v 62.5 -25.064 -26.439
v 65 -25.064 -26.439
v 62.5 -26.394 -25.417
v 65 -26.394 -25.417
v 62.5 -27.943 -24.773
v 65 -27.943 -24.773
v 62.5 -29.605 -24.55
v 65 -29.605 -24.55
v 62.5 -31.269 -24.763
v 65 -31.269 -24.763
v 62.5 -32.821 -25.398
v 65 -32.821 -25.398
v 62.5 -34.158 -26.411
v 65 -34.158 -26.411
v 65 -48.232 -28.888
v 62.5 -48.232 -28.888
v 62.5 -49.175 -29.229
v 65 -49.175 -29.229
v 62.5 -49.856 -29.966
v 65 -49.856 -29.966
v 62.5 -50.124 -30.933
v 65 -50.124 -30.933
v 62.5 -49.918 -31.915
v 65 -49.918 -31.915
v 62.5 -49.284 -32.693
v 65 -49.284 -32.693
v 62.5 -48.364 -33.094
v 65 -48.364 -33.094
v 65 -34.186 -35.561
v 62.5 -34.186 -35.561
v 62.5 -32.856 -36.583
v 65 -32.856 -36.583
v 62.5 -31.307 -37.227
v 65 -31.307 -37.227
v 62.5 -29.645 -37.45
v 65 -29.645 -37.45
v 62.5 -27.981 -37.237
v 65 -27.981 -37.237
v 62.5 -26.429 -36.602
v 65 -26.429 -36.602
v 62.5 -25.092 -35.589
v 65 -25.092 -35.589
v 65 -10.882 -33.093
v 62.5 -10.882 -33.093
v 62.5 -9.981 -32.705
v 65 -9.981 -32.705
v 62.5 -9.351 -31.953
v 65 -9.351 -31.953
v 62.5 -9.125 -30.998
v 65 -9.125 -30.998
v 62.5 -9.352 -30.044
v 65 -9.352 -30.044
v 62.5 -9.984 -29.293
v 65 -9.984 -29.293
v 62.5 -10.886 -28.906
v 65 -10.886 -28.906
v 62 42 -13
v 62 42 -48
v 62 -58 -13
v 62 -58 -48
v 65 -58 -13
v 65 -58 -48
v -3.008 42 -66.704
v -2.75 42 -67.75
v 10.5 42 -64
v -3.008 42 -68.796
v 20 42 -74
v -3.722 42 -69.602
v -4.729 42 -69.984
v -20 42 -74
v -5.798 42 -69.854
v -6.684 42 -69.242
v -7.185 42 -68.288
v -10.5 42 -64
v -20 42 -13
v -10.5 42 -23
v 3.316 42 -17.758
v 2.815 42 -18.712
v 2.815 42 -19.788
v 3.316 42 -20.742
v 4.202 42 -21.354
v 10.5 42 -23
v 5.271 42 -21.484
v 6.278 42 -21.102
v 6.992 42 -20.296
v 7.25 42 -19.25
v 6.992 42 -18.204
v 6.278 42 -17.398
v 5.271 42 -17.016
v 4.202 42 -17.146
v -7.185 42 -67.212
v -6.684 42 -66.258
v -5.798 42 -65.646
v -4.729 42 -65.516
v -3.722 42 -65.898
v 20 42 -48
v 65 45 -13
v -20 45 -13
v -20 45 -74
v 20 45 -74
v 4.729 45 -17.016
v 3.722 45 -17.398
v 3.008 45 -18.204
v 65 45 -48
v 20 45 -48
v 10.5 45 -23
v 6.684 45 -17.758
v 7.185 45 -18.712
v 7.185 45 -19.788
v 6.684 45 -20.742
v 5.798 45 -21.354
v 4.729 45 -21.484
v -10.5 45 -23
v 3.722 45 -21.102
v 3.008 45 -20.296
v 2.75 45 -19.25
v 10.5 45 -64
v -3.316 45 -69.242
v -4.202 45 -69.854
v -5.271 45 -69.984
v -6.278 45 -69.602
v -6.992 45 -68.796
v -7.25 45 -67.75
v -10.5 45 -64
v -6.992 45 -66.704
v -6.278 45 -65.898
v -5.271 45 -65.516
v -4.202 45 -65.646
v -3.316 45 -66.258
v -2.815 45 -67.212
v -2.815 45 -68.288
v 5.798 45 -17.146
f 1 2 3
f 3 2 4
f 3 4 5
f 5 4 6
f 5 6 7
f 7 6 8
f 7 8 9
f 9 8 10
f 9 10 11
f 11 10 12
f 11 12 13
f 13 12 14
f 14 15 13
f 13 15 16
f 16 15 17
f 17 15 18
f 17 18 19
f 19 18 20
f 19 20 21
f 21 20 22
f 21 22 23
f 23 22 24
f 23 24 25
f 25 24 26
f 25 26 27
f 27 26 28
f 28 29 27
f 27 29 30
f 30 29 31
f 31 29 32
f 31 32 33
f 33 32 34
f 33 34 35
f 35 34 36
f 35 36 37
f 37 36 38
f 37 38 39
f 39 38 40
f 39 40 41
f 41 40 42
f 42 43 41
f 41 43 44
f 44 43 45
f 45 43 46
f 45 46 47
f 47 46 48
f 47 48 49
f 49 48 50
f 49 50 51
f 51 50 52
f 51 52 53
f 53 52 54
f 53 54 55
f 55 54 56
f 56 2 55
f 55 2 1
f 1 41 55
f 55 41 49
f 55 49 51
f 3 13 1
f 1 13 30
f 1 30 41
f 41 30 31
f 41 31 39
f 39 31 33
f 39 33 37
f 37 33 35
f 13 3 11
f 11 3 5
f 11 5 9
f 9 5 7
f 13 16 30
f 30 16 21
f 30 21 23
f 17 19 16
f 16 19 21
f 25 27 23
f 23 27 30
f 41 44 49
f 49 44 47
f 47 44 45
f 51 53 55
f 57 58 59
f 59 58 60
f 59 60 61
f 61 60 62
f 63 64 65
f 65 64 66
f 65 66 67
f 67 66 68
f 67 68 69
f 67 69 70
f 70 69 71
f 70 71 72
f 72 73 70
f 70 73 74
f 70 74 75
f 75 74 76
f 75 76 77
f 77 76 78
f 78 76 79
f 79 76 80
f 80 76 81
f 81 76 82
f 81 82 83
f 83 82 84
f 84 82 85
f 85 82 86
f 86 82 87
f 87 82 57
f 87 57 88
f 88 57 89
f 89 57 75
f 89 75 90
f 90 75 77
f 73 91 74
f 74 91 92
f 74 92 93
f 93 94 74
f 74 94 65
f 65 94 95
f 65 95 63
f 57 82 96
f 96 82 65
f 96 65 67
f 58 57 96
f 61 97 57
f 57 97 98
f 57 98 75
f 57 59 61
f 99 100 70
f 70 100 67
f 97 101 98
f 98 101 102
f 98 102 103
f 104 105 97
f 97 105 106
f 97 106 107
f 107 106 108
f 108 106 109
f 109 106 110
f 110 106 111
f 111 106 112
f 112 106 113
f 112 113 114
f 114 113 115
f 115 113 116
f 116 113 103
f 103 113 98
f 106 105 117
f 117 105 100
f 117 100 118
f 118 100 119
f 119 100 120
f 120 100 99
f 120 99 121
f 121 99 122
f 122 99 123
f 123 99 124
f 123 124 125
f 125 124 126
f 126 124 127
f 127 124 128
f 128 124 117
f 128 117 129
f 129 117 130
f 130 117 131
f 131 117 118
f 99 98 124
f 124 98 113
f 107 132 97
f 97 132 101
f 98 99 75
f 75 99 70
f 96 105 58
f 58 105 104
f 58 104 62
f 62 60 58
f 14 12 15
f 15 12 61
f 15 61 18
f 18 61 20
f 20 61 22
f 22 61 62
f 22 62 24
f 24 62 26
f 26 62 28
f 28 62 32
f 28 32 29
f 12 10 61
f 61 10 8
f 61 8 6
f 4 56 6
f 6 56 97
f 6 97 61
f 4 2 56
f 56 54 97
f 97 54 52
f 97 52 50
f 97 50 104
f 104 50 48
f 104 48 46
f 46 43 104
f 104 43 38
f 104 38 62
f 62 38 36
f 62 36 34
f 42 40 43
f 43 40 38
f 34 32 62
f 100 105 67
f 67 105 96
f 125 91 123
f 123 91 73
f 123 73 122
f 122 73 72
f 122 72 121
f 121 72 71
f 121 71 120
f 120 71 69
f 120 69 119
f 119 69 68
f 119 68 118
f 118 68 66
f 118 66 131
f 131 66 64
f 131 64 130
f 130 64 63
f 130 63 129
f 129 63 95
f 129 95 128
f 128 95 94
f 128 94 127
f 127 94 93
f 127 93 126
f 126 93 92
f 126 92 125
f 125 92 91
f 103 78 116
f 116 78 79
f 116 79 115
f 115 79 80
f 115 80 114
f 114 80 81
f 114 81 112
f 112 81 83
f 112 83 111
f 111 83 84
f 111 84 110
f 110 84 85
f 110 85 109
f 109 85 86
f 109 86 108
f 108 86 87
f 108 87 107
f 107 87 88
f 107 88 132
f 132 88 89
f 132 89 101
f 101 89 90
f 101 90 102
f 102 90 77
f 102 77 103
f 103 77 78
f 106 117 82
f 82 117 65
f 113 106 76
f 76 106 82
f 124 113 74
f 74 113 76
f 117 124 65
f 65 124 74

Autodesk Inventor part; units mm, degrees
ref_plane "YZ Plane" through (0, 0, 0) normal (1, 0, 0) x (0, 1, 0)
ref_plane "XZ Plane" through (0, 0, 0) normal (0, 1, 0) x (-1, 0, 0)
ref_plane "XY Plane" through (0, 0, 0) normal (0, 0, 1) x (1, 0, 0)
sketch "Sketch1" plane through (0, 0, 0) normal (0, 0, 1) x (1, 0, 0)
  line L0 (-31, -31) -> (31, -31)
  line L1 (31, -31) -> (31, 31)
  line L2 (31, 31) -> (-31, 31)
  line L3 (-31, 31) -> (-31, -31)
  line L4 (-31, -31) -> (31, 31) construction
  line L5 (31, -31) -> (-31, 31) construction
  line L6 (-33, 33) -> (33, 33)
  line L7 (33, 33) -> (33, -33)
  line L8 (33, -33) -> (-33, -33)
  line L9 (-33, -33) -> (-33, 33)
  point P0 (0, 0)
  dimension "d0" = 62
  dimension "d1" = 62
  dimension "d2" = 2
extrude "Extrusion1" add sketch "Sketch1" along normal blind 2 contours L3 L2 L1 L0 | L6 L7 L8 L9
extrude "Extrusion2" add sketch "Sketch1" against normal blind 12
sketch "Sketch2" plane through (-33, 33, 2) normal (0, 1, 0) x (1, 0, 0)
  line L0 (13, 3) -> (53, 3)
  line L1 (53, 3) -> (53, 0)
  line L2 (53, 0) -> (13, 0)
  line L3 (13, 0) -> (13, 3)
  line L4 (0, 14) -> (0, 0) projected
  line L5 (0, 14) -> (66, 14) projected
  point P0 (33, 2)
  dimension "d7" = 40
  dimension "d8" = 3
  dimension "d9" = 13
  dimension "d10" = 11
extrude "Extrusion3" add sketch "Sketch2" along normal blind 12
sketch "Sketch3" plane through (20, 33, -1) normal (0, 0, -1) x (-1, 0, 0)
  line L0 (40, 12) -> (0, 12) projected
  line L1 (40, 0) -> (40, 12) projected
  line L2 (0, 12) -> (40, 12)
  line L3 (40, 12) -> (40, 9)
  line L4 (40, 9) -> (0, 9)
  line L5 (0, 9) -> (0, 12)
  point P0 (20, -33)
  dimension "d13" = 3
extrude "Extrusion4" add sketch "Sketch3" along normal blind 80
sketch "Sketch4" plane through (-20, 42, -1) normal (0, -1, 0) x (1, 0, 0)
  line L0 (30.5, -63) -> (9.5, -63)
  line L1 (9.5, -63) -> (9.5, -22)
  line L2 (9.5, -22) -> (30.5, -22)
  line L3 (30.5, -22) -> (30.5, -63)
  line L4 (40, 3) -> (40, -80) projected
  line L5 (0, 3) -> (40, 3) projected
  point P0 (20, 1)
  dimension "d16" = 21
  dimension "d17" = 41
  dimension "d18" = 9.5
  dimension "d19" = 25
extrude "Extrusion5" cut sketch "Sketch4" against normal blind 80
sketch "Sketch5" plane through (-20, 42, -1) normal (0, -1, 0) x (1, 0, 0)
  line L0 (30.5, -63) -> (9.5, -63) projected
  line L1 (30.5, -63) -> (9.5, -63)
  line L2 (9.5, -63) -> (9.5, -70)
  line L3 (9.5, -70) -> (30.5, -70)
  line L4 (30.5, -70) -> (30.5, -63)
  circle A0 centre (15, -66.75) radius 2.25
  line L5 (30.5, -22) -> (30.5, -63) projected
  line L6 (30.5, -22) -> (9.5, -22)
  line L7 (9.5, -22) -> (9.5, -15)
  line L8 (9.5, -15) -> (30.5, -15)
  line L9 (30.5, -15) -> (30.5, -22)
  circle A1 centre (25, -18.25) radius 2.25
  point P0 (20, 1)
  point P1 (15.4717, -69.81)
  point P2 (14.5283, -69.81)
  point P3 (24.5283, -15.19)
  point P4 (25.4717, -15.19)
  dimension "d22" = 7
  dimension "d23" = 4.5
  dimension "d24" = 3.75
  dimension "d25" = 5.5
  dimension "d26" = 7
  dimension "d27" = 4.5
  dimension "d28" = 5.5
  dimension "d29" = 3.75
extrude "Extrusion6" cut sketch "Sketch5" against normal blind 80 contours A0 | A1
sketch "Sketch6" plane through (-33, -33, 2) normal (0, -1, 0) x (1, 0, 0)
  line L0 (0, 0) -> (66, 0) projected
  line L1 (66, -14) -> (0, -14) projected
  line L2 (0, 0) -> (66, 0)
  line L3 (66, 0) -> (66, -14)
  line L4 (66, -14) -> (0, -14)
  line L5 (0, -14) -> (0, 0)
  point P0 (33, -2)
extrude "Extrusion7" cut sketch "Sketch6" against normal up to surface (75 mm away)
sketch "Sketch7" plane through (-20, 42, -81) normal (0, -1, 0) x (1, 0, 0)
  line L0 (40, 83) -> (40, 0) projected
  line L1 (40, 0) -> (85, 0)
  line L2 (85, 0) -> (85, 83)
  line L3 (85, 83) -> (40, 83)
  line L4 (40, 83) -> (40, 0)
  line L5 (85, 33) -> (40, 33)
  point P0 (20, 81)
  point P1 (40, 33)
  dimension "d34" = 45
  dimension "d35" = 83
  dimension "d36" = 50
extrude "Extrusion8" add sketch "Sketch7" against normal up to surface (3 mm away) contours L3 L2 L5 L0
sketch "Sketch8" plane through (-20, 42, -81) normal (0, -1, 0) x (1, 0, 0)
  line L0 (0, 83) -> (85, 83)
  line L1 (85, 83) -> (85, 0)
  line L2 (85, 0) -> (0, 0)
  line L3 (0, 0) -> (0, 83)
  line L4 (85, 7) -> (0, 7)
  line L5 (85, 33) -> (85, 83) projected
  line L6 (-12.2623, 85.093) -> (0, 83)
  line L7 (0, 83) -> (-11.5686, 87.0435)
  line L8 (-11.5686, 87.0435) -> (85, 70.5603)
  line L9 (0, 83) -> (100, 83)
  line L10 (100, 83) -> (100, 68)
  line L11 (100, 68) -> (0, 68)
  line L12 (0, 68) -> (0, 83)
  point P0 (20, 81)
  point P1 (0, 73.8499)
  point P2 (27.25, 61.75)
  point P3 (27.25, 61.75)
  point P4 (25.55, 64.81)
  point P5 (0, 68)
  point P6 (85, 68)
  dimension "d40" = 83
  dimension "d41" = 7
  dimension "d43" = 15
extrude "Extrusion9" cut sketch "Sketch8" against normal blind 10 contours L0 L8 L1 L11 L3 | L0 L1 L8 | L4 L1 L2 L3
sketch "Sketch9" plane through (20, 42, -48) normal (0, -1, 0) x (1, 0, 0)
  line L0 (45, 0) -> (45, 35) projected
  line L1 (0, 0) -> (45, 0) projected
  line L2 (45, 35) -> (42, 35)
  line L3 (42, 35) -> (42, 0)
  line L4 (42, 0) -> (45, 0)
  line L5 (45, 0) -> (45, 35)
  point P0 (-20, 48)
  dimension "d46" = 3
extrude "Extrusion10" add sketch "Sketch9" along normal blind 100
sketch "Sketch10" plane through (65, 45, -13) normal (1, 0, 0) x (0, 0, -1)
  circle A0 centre (18, -56.25) radius 2.125
  circle A1 centre (18, -93) radius 2.125
  circle A2 centre (18, -74.625) radius 6.45
  line L0 (20.093, -55.8824) -> (22.589, -70.0925)
  line L1 (15.9065, -55.8857) -> (13.439, -70.0643)
  line L2 (20.0935, -93.3643) -> (22.561, -79.1857)
  line L3 (15.8877, -93.2317) -> (13.411, -79.1575)
  line L4 (18, -56.25) -> (18, -74.625)
  line L5 (18, -74.625) -> (18, -93)
  line L6 (35, 0) -> (35, -103) projected
  line L7 (35, -103) -> (0, -103) projected
  point P0 (-13, -45)
  dimension "d49" = 4.25
  dimension "d50" = 4.25
  dimension "d51" = 12.9
  dimension "d52" = 9.15
  dimension "d53" = 9.15
  dimension "d54" = 41
  dimension "d57" = 17
  dimension "d58" = 10
extrude "Extrusion11" cut sketch "Sketch10" against normal blind 2.5
properties part number "pan_base_holder_v1"
